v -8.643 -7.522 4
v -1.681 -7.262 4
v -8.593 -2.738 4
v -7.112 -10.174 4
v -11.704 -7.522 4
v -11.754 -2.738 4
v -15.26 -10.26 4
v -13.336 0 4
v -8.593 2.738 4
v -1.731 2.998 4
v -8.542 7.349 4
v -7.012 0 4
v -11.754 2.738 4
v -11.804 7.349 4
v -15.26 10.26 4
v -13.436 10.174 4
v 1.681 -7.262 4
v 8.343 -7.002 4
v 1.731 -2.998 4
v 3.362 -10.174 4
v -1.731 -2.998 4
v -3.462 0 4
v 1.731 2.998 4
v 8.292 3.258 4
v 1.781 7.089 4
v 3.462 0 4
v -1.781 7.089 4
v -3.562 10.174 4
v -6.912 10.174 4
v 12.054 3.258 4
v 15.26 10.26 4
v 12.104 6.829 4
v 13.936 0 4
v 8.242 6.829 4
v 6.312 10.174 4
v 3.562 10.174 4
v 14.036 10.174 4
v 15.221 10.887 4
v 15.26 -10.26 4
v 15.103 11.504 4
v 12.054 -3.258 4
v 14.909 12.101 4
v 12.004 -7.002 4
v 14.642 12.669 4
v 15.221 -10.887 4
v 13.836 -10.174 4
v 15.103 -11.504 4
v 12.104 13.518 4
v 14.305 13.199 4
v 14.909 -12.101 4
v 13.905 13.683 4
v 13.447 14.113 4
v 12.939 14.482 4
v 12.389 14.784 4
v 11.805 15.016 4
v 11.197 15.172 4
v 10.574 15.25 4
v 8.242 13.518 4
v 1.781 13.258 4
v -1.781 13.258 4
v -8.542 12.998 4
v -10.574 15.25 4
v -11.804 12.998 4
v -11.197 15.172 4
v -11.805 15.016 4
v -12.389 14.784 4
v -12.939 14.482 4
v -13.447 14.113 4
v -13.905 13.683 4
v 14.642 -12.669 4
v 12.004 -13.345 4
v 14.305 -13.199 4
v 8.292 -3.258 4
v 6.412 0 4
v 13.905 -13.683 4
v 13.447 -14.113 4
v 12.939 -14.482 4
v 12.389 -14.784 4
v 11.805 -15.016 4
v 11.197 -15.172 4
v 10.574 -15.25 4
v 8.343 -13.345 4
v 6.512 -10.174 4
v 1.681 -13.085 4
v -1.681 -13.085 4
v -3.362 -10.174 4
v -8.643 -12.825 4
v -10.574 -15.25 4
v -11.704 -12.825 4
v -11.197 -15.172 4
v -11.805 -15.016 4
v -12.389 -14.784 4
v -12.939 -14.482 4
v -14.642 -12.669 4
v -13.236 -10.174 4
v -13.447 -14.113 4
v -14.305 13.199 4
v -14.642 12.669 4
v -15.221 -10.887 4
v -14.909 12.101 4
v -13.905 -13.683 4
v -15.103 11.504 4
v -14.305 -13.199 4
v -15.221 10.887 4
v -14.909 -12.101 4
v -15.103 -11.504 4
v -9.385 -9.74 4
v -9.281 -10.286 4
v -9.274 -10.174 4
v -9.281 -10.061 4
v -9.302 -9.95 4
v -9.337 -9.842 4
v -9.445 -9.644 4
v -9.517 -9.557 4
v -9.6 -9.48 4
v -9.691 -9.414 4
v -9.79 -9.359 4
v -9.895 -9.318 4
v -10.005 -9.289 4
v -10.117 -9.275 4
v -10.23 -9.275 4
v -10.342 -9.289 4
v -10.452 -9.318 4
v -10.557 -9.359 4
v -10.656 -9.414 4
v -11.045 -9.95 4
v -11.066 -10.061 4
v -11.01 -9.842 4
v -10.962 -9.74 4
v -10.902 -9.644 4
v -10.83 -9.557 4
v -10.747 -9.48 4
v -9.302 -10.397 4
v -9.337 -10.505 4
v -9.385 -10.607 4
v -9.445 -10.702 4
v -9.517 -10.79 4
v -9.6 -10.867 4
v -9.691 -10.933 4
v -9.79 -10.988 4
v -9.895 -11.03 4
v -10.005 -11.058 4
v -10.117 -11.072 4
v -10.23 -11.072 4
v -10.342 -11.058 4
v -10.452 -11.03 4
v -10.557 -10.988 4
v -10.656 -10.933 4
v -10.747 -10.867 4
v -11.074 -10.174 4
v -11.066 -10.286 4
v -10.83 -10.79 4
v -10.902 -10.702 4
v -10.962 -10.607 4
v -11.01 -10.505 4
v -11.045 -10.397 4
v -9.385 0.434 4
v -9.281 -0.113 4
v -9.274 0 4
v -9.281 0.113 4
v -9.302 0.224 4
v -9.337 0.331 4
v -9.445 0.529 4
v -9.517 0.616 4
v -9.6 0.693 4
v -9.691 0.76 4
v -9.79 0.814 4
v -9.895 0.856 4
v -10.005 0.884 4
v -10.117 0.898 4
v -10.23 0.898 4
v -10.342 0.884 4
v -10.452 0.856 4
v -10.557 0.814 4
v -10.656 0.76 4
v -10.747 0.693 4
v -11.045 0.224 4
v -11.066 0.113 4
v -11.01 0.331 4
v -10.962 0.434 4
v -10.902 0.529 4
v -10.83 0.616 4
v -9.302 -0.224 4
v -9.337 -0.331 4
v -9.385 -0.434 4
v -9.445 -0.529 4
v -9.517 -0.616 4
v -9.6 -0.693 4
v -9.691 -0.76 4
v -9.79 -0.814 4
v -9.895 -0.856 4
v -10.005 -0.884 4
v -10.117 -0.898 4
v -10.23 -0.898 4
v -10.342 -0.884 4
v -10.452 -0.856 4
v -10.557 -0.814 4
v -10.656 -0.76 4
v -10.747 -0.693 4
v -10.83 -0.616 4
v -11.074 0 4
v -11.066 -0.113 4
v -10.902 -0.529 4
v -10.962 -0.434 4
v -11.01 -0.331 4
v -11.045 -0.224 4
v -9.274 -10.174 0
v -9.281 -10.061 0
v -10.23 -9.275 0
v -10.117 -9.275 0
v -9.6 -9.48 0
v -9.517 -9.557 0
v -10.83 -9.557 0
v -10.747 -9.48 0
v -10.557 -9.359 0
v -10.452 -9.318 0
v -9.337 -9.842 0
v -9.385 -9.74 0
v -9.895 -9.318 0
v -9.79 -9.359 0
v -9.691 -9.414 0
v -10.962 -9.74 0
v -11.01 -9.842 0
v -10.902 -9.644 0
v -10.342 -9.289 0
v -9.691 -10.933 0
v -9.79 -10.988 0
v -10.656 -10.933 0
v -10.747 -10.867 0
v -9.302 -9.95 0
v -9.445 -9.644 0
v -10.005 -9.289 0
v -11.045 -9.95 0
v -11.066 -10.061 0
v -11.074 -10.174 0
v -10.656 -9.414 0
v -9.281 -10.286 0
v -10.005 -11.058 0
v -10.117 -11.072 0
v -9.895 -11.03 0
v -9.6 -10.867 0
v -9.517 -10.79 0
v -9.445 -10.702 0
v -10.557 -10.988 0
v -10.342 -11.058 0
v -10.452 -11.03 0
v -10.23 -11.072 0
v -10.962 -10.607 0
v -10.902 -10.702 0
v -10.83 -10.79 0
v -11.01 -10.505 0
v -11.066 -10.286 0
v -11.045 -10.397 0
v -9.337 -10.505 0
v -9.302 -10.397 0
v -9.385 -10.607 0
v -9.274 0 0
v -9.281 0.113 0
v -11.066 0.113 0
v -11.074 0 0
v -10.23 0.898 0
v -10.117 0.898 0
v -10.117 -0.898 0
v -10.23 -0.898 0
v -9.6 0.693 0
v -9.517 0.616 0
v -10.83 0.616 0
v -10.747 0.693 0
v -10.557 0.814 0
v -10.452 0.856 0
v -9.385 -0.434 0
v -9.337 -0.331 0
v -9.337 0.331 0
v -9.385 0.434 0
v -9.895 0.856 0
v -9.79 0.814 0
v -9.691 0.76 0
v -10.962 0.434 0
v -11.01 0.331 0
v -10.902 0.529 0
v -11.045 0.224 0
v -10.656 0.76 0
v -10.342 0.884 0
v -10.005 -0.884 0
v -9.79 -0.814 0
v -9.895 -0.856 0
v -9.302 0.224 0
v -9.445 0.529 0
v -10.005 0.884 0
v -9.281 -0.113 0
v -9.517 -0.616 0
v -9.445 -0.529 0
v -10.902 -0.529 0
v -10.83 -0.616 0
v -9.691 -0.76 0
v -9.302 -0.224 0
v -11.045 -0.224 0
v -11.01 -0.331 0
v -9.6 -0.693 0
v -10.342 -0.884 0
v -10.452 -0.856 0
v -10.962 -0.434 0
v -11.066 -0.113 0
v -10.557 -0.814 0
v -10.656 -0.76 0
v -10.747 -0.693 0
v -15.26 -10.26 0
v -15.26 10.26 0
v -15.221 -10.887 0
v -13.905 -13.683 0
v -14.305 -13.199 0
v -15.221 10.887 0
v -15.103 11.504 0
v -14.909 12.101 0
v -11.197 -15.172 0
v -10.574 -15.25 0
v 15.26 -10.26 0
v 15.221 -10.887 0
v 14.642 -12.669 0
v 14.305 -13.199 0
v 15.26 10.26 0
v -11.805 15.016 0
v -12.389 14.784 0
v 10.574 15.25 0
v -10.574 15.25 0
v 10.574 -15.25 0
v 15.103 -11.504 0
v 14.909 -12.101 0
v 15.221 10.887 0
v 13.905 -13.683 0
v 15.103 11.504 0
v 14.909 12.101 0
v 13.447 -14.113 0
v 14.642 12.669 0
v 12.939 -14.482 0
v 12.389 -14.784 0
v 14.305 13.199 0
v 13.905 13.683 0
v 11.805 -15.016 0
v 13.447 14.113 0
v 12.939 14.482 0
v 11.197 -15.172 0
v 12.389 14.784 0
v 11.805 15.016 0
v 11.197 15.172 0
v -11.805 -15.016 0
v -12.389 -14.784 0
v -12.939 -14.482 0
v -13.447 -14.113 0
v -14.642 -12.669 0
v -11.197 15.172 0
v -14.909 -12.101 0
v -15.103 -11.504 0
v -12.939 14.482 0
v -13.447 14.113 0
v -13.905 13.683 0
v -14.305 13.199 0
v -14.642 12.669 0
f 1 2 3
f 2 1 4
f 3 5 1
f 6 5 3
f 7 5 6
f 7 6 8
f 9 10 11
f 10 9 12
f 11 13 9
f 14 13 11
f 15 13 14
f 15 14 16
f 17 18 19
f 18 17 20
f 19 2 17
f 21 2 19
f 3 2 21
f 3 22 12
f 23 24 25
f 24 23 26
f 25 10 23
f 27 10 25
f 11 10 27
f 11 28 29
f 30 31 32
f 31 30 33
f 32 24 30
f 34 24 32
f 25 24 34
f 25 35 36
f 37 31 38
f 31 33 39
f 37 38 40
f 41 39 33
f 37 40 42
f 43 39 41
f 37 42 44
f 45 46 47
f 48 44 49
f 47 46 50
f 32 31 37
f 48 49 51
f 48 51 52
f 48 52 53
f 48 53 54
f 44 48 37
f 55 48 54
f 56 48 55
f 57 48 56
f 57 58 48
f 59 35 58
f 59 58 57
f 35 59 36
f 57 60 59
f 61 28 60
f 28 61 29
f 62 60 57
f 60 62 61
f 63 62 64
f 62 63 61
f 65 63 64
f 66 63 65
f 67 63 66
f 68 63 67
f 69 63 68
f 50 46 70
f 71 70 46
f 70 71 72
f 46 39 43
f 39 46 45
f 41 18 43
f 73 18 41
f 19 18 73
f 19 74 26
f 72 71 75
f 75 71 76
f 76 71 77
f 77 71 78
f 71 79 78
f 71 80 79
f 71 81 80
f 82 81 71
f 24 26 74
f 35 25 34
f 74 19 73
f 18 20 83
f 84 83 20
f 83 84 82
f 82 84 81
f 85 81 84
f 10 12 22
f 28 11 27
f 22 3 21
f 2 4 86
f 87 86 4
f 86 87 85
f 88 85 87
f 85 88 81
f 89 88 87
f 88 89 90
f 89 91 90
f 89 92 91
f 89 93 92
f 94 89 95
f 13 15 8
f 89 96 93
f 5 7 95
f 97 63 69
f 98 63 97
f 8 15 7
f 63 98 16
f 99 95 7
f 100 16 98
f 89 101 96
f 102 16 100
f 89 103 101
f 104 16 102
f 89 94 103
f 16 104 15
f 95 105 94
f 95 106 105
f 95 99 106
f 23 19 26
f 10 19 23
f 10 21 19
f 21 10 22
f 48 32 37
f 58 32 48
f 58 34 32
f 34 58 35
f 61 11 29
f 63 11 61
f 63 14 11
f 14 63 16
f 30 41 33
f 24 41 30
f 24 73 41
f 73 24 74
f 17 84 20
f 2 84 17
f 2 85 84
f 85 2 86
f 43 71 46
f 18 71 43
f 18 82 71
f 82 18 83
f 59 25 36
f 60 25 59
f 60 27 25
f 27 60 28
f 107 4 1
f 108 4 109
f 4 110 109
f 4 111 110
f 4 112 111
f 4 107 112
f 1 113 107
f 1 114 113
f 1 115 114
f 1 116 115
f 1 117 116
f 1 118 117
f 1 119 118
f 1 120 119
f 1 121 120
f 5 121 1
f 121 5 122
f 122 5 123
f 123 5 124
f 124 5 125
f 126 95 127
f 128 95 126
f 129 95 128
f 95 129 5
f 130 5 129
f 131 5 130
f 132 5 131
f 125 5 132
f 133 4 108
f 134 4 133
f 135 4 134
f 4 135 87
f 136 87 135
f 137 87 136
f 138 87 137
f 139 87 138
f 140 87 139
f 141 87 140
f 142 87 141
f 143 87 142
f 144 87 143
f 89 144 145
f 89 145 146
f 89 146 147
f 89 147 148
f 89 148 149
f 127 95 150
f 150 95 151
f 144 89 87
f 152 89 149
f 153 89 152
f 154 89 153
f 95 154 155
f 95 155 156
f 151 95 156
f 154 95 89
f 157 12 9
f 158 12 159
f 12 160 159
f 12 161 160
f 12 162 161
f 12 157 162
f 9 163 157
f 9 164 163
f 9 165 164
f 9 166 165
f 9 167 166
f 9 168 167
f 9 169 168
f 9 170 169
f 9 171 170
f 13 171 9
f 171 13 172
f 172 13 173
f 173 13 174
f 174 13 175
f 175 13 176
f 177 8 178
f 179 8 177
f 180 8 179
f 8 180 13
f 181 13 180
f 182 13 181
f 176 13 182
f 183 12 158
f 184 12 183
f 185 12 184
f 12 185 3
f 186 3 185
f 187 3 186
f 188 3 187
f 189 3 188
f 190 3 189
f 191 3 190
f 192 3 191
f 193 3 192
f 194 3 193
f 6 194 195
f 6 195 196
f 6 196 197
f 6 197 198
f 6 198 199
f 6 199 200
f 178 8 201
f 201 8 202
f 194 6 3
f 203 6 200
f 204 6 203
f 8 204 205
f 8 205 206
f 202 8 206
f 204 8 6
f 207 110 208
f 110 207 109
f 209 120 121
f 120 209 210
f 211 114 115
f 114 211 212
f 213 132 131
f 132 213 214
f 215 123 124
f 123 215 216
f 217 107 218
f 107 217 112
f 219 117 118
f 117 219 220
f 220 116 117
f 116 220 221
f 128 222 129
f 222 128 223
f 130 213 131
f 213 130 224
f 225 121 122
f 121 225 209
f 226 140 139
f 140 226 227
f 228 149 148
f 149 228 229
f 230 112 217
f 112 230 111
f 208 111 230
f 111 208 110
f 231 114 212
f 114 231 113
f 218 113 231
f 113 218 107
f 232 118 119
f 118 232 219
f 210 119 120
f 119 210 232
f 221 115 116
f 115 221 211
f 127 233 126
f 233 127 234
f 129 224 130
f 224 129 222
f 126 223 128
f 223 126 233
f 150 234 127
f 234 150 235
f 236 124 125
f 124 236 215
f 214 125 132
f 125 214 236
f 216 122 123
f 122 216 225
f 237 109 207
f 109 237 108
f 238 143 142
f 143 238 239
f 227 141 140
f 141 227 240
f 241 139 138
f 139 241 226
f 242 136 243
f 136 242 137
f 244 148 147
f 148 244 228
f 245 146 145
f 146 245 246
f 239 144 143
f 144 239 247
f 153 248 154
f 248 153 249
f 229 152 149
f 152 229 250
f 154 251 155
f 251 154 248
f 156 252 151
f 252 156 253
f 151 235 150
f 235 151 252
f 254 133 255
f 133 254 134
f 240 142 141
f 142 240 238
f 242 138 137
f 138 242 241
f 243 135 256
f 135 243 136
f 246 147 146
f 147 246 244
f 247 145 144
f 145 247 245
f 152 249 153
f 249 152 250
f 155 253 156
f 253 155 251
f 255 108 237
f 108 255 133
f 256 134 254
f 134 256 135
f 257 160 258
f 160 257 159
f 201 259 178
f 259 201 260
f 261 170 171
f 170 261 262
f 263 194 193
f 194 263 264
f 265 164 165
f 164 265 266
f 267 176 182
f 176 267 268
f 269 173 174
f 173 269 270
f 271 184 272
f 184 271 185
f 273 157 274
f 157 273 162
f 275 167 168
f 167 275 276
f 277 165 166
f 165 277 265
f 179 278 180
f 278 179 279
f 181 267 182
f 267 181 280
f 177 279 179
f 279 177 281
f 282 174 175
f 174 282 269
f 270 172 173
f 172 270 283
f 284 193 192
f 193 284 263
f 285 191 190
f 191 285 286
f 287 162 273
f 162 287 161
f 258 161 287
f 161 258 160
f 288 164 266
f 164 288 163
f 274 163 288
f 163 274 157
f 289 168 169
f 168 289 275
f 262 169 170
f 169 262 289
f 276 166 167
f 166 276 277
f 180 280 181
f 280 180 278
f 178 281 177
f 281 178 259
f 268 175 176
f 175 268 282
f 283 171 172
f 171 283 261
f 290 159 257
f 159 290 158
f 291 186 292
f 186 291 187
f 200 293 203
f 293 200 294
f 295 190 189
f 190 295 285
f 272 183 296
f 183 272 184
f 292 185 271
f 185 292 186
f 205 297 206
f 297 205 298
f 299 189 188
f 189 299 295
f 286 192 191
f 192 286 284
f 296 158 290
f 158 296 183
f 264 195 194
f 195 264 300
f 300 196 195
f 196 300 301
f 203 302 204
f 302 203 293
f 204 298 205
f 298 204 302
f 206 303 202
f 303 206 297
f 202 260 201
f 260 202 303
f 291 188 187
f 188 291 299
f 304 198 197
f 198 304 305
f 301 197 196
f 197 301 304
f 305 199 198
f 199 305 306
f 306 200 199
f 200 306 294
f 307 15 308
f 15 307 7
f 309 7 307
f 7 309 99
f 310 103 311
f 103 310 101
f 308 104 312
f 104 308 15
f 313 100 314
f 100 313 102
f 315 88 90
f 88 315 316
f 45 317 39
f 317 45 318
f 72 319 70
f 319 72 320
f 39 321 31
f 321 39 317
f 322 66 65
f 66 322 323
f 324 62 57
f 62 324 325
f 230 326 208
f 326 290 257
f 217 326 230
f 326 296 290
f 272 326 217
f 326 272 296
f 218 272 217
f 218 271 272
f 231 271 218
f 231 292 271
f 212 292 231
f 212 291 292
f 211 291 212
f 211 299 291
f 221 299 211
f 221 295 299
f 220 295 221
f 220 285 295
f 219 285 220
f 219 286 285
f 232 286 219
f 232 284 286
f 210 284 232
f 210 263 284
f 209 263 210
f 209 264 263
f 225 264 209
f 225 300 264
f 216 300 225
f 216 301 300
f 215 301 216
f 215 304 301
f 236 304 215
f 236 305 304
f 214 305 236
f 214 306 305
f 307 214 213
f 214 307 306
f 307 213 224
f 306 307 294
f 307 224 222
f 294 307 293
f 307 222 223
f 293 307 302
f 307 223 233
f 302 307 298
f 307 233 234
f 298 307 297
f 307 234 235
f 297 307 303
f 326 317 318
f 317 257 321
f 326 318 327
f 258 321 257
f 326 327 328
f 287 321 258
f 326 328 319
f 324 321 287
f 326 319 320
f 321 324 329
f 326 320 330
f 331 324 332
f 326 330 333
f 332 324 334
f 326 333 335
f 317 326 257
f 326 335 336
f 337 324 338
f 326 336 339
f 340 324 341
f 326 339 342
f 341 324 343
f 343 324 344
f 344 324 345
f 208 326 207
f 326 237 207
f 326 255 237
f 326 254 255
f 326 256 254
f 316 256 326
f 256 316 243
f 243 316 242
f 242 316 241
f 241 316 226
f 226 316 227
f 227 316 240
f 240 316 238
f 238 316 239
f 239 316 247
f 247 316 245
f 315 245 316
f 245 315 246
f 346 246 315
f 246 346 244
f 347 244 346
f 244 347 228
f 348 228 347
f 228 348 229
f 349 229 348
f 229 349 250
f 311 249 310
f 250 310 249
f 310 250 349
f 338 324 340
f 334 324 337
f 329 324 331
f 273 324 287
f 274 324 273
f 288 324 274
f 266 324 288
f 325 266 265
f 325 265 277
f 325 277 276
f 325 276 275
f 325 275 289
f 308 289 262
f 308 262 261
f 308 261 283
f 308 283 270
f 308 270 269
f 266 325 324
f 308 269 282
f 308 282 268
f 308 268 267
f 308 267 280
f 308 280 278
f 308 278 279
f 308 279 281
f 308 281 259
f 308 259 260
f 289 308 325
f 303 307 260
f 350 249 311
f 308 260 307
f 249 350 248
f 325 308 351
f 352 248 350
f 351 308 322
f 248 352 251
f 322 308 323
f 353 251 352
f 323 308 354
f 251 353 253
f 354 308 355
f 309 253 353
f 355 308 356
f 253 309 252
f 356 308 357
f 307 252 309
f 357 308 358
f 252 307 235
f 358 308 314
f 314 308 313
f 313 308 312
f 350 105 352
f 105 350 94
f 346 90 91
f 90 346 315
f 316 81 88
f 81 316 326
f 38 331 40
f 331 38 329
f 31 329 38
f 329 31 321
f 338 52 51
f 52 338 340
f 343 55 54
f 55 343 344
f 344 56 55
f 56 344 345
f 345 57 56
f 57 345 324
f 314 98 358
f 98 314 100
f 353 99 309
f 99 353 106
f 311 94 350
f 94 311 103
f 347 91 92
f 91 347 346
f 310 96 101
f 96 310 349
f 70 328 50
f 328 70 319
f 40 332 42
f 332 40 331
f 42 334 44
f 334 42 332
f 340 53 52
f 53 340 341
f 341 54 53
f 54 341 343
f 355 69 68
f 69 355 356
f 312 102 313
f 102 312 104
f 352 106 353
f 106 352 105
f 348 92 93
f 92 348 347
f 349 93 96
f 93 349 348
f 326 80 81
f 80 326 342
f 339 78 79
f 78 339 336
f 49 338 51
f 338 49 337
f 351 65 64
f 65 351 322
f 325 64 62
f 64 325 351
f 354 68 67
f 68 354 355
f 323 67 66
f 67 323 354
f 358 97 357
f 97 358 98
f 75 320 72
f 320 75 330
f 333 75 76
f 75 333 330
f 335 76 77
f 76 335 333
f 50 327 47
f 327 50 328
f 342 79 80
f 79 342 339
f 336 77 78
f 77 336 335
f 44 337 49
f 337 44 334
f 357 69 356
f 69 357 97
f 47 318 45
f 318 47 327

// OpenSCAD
$fn = 50;


difference() {
	union() {
		translate(v = [0, 0, 0]) {
			rotate(a = [0, 0, 0]) {
				hull() {
					translate(v = [-10.2602500000, 10.2602500000, 0]) {
						rotate(a = [0, 0, 0]) {
							translate(v = [0, 0, 0]) {
								rotate(a = [0, 0, 0]) {
									cylinder(h = 4, r = 5);
								}
							}
						}
					}
					translate(v = [10.2602500000, 10.2602500000, 0]) {
						rotate(a = [0, 0, 0]) {
							translate(v = [0, 0, 0]) {
								rotate(a = [0, 0, 0]) {
									cylinder(h = 4, r = 5);
								}
							}
						}
					}
					translate(v = [-10.2602500000, -10.2602500000, 0]) {
						rotate(a = [0, 0, 0]) {
							translate(v = [0, 0, 0]) {
								rotate(a = [0, 0, 0]) {
									cylinder(h = 4, r = 5);
								}
							}
						}
					}
					translate(v = [10.2602500000, -10.2602500000, 0]) {
						rotate(a = [0, 0, 0]) {
							translate(v = [0, 0, 0]) {
								rotate(a = [0, 0, 0]) {
									cylinder(h = 4, r = 5);
								}
							}
						}
					}
				}
			}
		}
	}
	union() {
		translate(v = [-10.1735000000, -10.1735000000, 4]) {
			rotate(a = [0, 0, 0]) {
				#translate(v = [0, 0, 0]) {
					rotate(a = [0, 0, 0]) {
						linear_extrude(height = 3) {
							polygon(points = [[3.0620000000, 0.0000000000], [1.5310000000, 2.6517697864], [-1.5310000000, 2.6517697864], [-3.0620000000, 0.0000000000], [-1.5310000000, -2.6517697864], [1.5310000000, -2.6517697864]]);
						}
					}
				}
			}
		}
		translate(v = [-10.1735000000, -10.1735000000, -121.0000000000]) {
			rotate(a = [0, 0, 0]) {
				cylinder(h = 250, r = 0.9000000000);
			}
		}
		translate(v = [-10.1735000000, 0.0000000000, 4]) {
			rotate(a = [0, 0, 0]) {
				#translate(v = [0, 0, 0]) {
					rotate(a = [0, 0, 0]) {
						linear_extrude(height = 3) {
							polygon(points = [[3.1620000000, 0.0000000000], [1.5810000000, 2.7383723268], [-1.5810000000, 2.7383723268], [-3.1620000000, 0.0000000000], [-1.5810000000, -2.7383723268], [1.5810000000, -2.7383723268]]);
						}
					}
				}
			}
		}
		translate(v = [-10.1735000000, 0.0000000000, -121.0000000000]) {
			rotate(a = [0, 0, 0]) {
				cylinder(h = 250, r = 0.9000000000);
			}
		}
		translate(v = [-10.1735000000, 10.1735000000, 4]) {
			rotate(a = [0, 0, 0]) {
				#translate(v = [0, 0, 0]) {
					rotate(a = [0, 0, 0]) {
						linear_extrude(height = 3) {
							polygon(points = [[3.2620000000, 0.0000000000], [1.6310000000, 2.8249748671], [-1.6310000000, 2.8249748671], [-3.2620000000, 0.0000000000], [-1.6310000000, -2.8249748671], [1.6310000000, -2.8249748671]]);
						}
					}
				}
			}
		}
		translate(v = [0.0000000000, -10.1735000000, 4]) {
			rotate(a = [0, 0, 0]) {
				#translate(v = [0, 0, 0]) {
					rotate(a = [0, 0, 0]) {
						linear_extrude(height = 3) {
							polygon(points = [[3.3620000000, 0.0000000000], [1.6810000000, 2.9115774075], [-1.6810000000, 2.9115774075], [-3.3620000000, 0.0000000000], [-1.6810000000, -2.9115774075], [1.6810000000, -2.9115774075]]);
						}
					}
				}
			}
		}
		translate(v = [0.0000000000, 0.0000000000, 4]) {
			rotate(a = [0, 0, 0]) {
				#translate(v = [0, 0, 0]) {
					rotate(a = [0, 0, 0]) {
						linear_extrude(height = 3) {
							polygon(points = [[3.4620000000, 0.0000000000], [1.7310000000, 2.9981799479], [-1.7310000000, 2.9981799479], [-3.4620000000, 0.0000000000], [-1.7310000000, -2.9981799479], [1.7310000000, -2.9981799479]]);
						}
					}
				}
			}
		}
		translate(v = [0.0000000000, 10.1735000000, 4]) {
			rotate(a = [0, 0, 0]) {
				#translate(v = [0, 0, 0]) {
					rotate(a = [0, 0, 0]) {
						linear_extrude(height = 3) {
							polygon(points = [[3.5620000000, 0.0000000000], [1.7810000000, 3.0847824883], [-1.7810000000, 3.0847824883], [-3.5620000000, 0.0000000000], [-1.7810000000, -3.0847824883], [1.7810000000, -3.0847824883]]);
						}
					}
				}
			}
		}
		translate(v = [10.1735000000, -10.1735000000, 4]) {
			rotate(a = [0, 0, 0]) {
				#translate(v = [0, 0, 0]) {
					rotate(a = [0, 0, 0]) {
						linear_extrude(height = 3) {
							polygon(points = [[3.6620000000, 0.0000000000], [1.8310000000, 3.1713850287], [-1.8310000000, 3.1713850287], [-3.6620000000, 0.0000000000], [-1.8310000000, -3.1713850287], [1.8310000000, -3.1713850287]]);
						}
					}
				}
			}
		}
		translate(v = [10.1735000000, 0.0000000000, 4]) {
			rotate(a = [0, 0, 0]) {
				#translate(v = [0, 0, 0]) {
					rotate(a = [0, 0, 0]) {
						linear_extrude(height = 3) {
							polygon(points = [[3.7620000000, 0.0000000000], [1.8810000000, 3.2579875690], [-1.8810000000, 3.2579875690], [-3.7620000000, 0.0000000000], [-1.8810000000, -3.2579875690], [1.8810000000, -3.2579875690]]);
						}
					}
				}
			}
		}
		translate(v = [10.1735000000, 10.1735000000, 4]) {
			rotate(a = [0, 0, 0]) {
				#translate(v = [0, 0, 0]) {
					rotate(a = [0, 0, 0]) {
						linear_extrude(height = 3) {
							polygon(points = [[3.8620000000, 0.0000000000], [1.9310000000, 3.3445901094], [-1.9310000000, 3.3445901094], [-3.8620000000, 0.0000000000], [-1.9310000000, -3.3445901094], [1.9310000000, -3.3445901094]]);
						}
					}
				}
			}
		}
	}
}
